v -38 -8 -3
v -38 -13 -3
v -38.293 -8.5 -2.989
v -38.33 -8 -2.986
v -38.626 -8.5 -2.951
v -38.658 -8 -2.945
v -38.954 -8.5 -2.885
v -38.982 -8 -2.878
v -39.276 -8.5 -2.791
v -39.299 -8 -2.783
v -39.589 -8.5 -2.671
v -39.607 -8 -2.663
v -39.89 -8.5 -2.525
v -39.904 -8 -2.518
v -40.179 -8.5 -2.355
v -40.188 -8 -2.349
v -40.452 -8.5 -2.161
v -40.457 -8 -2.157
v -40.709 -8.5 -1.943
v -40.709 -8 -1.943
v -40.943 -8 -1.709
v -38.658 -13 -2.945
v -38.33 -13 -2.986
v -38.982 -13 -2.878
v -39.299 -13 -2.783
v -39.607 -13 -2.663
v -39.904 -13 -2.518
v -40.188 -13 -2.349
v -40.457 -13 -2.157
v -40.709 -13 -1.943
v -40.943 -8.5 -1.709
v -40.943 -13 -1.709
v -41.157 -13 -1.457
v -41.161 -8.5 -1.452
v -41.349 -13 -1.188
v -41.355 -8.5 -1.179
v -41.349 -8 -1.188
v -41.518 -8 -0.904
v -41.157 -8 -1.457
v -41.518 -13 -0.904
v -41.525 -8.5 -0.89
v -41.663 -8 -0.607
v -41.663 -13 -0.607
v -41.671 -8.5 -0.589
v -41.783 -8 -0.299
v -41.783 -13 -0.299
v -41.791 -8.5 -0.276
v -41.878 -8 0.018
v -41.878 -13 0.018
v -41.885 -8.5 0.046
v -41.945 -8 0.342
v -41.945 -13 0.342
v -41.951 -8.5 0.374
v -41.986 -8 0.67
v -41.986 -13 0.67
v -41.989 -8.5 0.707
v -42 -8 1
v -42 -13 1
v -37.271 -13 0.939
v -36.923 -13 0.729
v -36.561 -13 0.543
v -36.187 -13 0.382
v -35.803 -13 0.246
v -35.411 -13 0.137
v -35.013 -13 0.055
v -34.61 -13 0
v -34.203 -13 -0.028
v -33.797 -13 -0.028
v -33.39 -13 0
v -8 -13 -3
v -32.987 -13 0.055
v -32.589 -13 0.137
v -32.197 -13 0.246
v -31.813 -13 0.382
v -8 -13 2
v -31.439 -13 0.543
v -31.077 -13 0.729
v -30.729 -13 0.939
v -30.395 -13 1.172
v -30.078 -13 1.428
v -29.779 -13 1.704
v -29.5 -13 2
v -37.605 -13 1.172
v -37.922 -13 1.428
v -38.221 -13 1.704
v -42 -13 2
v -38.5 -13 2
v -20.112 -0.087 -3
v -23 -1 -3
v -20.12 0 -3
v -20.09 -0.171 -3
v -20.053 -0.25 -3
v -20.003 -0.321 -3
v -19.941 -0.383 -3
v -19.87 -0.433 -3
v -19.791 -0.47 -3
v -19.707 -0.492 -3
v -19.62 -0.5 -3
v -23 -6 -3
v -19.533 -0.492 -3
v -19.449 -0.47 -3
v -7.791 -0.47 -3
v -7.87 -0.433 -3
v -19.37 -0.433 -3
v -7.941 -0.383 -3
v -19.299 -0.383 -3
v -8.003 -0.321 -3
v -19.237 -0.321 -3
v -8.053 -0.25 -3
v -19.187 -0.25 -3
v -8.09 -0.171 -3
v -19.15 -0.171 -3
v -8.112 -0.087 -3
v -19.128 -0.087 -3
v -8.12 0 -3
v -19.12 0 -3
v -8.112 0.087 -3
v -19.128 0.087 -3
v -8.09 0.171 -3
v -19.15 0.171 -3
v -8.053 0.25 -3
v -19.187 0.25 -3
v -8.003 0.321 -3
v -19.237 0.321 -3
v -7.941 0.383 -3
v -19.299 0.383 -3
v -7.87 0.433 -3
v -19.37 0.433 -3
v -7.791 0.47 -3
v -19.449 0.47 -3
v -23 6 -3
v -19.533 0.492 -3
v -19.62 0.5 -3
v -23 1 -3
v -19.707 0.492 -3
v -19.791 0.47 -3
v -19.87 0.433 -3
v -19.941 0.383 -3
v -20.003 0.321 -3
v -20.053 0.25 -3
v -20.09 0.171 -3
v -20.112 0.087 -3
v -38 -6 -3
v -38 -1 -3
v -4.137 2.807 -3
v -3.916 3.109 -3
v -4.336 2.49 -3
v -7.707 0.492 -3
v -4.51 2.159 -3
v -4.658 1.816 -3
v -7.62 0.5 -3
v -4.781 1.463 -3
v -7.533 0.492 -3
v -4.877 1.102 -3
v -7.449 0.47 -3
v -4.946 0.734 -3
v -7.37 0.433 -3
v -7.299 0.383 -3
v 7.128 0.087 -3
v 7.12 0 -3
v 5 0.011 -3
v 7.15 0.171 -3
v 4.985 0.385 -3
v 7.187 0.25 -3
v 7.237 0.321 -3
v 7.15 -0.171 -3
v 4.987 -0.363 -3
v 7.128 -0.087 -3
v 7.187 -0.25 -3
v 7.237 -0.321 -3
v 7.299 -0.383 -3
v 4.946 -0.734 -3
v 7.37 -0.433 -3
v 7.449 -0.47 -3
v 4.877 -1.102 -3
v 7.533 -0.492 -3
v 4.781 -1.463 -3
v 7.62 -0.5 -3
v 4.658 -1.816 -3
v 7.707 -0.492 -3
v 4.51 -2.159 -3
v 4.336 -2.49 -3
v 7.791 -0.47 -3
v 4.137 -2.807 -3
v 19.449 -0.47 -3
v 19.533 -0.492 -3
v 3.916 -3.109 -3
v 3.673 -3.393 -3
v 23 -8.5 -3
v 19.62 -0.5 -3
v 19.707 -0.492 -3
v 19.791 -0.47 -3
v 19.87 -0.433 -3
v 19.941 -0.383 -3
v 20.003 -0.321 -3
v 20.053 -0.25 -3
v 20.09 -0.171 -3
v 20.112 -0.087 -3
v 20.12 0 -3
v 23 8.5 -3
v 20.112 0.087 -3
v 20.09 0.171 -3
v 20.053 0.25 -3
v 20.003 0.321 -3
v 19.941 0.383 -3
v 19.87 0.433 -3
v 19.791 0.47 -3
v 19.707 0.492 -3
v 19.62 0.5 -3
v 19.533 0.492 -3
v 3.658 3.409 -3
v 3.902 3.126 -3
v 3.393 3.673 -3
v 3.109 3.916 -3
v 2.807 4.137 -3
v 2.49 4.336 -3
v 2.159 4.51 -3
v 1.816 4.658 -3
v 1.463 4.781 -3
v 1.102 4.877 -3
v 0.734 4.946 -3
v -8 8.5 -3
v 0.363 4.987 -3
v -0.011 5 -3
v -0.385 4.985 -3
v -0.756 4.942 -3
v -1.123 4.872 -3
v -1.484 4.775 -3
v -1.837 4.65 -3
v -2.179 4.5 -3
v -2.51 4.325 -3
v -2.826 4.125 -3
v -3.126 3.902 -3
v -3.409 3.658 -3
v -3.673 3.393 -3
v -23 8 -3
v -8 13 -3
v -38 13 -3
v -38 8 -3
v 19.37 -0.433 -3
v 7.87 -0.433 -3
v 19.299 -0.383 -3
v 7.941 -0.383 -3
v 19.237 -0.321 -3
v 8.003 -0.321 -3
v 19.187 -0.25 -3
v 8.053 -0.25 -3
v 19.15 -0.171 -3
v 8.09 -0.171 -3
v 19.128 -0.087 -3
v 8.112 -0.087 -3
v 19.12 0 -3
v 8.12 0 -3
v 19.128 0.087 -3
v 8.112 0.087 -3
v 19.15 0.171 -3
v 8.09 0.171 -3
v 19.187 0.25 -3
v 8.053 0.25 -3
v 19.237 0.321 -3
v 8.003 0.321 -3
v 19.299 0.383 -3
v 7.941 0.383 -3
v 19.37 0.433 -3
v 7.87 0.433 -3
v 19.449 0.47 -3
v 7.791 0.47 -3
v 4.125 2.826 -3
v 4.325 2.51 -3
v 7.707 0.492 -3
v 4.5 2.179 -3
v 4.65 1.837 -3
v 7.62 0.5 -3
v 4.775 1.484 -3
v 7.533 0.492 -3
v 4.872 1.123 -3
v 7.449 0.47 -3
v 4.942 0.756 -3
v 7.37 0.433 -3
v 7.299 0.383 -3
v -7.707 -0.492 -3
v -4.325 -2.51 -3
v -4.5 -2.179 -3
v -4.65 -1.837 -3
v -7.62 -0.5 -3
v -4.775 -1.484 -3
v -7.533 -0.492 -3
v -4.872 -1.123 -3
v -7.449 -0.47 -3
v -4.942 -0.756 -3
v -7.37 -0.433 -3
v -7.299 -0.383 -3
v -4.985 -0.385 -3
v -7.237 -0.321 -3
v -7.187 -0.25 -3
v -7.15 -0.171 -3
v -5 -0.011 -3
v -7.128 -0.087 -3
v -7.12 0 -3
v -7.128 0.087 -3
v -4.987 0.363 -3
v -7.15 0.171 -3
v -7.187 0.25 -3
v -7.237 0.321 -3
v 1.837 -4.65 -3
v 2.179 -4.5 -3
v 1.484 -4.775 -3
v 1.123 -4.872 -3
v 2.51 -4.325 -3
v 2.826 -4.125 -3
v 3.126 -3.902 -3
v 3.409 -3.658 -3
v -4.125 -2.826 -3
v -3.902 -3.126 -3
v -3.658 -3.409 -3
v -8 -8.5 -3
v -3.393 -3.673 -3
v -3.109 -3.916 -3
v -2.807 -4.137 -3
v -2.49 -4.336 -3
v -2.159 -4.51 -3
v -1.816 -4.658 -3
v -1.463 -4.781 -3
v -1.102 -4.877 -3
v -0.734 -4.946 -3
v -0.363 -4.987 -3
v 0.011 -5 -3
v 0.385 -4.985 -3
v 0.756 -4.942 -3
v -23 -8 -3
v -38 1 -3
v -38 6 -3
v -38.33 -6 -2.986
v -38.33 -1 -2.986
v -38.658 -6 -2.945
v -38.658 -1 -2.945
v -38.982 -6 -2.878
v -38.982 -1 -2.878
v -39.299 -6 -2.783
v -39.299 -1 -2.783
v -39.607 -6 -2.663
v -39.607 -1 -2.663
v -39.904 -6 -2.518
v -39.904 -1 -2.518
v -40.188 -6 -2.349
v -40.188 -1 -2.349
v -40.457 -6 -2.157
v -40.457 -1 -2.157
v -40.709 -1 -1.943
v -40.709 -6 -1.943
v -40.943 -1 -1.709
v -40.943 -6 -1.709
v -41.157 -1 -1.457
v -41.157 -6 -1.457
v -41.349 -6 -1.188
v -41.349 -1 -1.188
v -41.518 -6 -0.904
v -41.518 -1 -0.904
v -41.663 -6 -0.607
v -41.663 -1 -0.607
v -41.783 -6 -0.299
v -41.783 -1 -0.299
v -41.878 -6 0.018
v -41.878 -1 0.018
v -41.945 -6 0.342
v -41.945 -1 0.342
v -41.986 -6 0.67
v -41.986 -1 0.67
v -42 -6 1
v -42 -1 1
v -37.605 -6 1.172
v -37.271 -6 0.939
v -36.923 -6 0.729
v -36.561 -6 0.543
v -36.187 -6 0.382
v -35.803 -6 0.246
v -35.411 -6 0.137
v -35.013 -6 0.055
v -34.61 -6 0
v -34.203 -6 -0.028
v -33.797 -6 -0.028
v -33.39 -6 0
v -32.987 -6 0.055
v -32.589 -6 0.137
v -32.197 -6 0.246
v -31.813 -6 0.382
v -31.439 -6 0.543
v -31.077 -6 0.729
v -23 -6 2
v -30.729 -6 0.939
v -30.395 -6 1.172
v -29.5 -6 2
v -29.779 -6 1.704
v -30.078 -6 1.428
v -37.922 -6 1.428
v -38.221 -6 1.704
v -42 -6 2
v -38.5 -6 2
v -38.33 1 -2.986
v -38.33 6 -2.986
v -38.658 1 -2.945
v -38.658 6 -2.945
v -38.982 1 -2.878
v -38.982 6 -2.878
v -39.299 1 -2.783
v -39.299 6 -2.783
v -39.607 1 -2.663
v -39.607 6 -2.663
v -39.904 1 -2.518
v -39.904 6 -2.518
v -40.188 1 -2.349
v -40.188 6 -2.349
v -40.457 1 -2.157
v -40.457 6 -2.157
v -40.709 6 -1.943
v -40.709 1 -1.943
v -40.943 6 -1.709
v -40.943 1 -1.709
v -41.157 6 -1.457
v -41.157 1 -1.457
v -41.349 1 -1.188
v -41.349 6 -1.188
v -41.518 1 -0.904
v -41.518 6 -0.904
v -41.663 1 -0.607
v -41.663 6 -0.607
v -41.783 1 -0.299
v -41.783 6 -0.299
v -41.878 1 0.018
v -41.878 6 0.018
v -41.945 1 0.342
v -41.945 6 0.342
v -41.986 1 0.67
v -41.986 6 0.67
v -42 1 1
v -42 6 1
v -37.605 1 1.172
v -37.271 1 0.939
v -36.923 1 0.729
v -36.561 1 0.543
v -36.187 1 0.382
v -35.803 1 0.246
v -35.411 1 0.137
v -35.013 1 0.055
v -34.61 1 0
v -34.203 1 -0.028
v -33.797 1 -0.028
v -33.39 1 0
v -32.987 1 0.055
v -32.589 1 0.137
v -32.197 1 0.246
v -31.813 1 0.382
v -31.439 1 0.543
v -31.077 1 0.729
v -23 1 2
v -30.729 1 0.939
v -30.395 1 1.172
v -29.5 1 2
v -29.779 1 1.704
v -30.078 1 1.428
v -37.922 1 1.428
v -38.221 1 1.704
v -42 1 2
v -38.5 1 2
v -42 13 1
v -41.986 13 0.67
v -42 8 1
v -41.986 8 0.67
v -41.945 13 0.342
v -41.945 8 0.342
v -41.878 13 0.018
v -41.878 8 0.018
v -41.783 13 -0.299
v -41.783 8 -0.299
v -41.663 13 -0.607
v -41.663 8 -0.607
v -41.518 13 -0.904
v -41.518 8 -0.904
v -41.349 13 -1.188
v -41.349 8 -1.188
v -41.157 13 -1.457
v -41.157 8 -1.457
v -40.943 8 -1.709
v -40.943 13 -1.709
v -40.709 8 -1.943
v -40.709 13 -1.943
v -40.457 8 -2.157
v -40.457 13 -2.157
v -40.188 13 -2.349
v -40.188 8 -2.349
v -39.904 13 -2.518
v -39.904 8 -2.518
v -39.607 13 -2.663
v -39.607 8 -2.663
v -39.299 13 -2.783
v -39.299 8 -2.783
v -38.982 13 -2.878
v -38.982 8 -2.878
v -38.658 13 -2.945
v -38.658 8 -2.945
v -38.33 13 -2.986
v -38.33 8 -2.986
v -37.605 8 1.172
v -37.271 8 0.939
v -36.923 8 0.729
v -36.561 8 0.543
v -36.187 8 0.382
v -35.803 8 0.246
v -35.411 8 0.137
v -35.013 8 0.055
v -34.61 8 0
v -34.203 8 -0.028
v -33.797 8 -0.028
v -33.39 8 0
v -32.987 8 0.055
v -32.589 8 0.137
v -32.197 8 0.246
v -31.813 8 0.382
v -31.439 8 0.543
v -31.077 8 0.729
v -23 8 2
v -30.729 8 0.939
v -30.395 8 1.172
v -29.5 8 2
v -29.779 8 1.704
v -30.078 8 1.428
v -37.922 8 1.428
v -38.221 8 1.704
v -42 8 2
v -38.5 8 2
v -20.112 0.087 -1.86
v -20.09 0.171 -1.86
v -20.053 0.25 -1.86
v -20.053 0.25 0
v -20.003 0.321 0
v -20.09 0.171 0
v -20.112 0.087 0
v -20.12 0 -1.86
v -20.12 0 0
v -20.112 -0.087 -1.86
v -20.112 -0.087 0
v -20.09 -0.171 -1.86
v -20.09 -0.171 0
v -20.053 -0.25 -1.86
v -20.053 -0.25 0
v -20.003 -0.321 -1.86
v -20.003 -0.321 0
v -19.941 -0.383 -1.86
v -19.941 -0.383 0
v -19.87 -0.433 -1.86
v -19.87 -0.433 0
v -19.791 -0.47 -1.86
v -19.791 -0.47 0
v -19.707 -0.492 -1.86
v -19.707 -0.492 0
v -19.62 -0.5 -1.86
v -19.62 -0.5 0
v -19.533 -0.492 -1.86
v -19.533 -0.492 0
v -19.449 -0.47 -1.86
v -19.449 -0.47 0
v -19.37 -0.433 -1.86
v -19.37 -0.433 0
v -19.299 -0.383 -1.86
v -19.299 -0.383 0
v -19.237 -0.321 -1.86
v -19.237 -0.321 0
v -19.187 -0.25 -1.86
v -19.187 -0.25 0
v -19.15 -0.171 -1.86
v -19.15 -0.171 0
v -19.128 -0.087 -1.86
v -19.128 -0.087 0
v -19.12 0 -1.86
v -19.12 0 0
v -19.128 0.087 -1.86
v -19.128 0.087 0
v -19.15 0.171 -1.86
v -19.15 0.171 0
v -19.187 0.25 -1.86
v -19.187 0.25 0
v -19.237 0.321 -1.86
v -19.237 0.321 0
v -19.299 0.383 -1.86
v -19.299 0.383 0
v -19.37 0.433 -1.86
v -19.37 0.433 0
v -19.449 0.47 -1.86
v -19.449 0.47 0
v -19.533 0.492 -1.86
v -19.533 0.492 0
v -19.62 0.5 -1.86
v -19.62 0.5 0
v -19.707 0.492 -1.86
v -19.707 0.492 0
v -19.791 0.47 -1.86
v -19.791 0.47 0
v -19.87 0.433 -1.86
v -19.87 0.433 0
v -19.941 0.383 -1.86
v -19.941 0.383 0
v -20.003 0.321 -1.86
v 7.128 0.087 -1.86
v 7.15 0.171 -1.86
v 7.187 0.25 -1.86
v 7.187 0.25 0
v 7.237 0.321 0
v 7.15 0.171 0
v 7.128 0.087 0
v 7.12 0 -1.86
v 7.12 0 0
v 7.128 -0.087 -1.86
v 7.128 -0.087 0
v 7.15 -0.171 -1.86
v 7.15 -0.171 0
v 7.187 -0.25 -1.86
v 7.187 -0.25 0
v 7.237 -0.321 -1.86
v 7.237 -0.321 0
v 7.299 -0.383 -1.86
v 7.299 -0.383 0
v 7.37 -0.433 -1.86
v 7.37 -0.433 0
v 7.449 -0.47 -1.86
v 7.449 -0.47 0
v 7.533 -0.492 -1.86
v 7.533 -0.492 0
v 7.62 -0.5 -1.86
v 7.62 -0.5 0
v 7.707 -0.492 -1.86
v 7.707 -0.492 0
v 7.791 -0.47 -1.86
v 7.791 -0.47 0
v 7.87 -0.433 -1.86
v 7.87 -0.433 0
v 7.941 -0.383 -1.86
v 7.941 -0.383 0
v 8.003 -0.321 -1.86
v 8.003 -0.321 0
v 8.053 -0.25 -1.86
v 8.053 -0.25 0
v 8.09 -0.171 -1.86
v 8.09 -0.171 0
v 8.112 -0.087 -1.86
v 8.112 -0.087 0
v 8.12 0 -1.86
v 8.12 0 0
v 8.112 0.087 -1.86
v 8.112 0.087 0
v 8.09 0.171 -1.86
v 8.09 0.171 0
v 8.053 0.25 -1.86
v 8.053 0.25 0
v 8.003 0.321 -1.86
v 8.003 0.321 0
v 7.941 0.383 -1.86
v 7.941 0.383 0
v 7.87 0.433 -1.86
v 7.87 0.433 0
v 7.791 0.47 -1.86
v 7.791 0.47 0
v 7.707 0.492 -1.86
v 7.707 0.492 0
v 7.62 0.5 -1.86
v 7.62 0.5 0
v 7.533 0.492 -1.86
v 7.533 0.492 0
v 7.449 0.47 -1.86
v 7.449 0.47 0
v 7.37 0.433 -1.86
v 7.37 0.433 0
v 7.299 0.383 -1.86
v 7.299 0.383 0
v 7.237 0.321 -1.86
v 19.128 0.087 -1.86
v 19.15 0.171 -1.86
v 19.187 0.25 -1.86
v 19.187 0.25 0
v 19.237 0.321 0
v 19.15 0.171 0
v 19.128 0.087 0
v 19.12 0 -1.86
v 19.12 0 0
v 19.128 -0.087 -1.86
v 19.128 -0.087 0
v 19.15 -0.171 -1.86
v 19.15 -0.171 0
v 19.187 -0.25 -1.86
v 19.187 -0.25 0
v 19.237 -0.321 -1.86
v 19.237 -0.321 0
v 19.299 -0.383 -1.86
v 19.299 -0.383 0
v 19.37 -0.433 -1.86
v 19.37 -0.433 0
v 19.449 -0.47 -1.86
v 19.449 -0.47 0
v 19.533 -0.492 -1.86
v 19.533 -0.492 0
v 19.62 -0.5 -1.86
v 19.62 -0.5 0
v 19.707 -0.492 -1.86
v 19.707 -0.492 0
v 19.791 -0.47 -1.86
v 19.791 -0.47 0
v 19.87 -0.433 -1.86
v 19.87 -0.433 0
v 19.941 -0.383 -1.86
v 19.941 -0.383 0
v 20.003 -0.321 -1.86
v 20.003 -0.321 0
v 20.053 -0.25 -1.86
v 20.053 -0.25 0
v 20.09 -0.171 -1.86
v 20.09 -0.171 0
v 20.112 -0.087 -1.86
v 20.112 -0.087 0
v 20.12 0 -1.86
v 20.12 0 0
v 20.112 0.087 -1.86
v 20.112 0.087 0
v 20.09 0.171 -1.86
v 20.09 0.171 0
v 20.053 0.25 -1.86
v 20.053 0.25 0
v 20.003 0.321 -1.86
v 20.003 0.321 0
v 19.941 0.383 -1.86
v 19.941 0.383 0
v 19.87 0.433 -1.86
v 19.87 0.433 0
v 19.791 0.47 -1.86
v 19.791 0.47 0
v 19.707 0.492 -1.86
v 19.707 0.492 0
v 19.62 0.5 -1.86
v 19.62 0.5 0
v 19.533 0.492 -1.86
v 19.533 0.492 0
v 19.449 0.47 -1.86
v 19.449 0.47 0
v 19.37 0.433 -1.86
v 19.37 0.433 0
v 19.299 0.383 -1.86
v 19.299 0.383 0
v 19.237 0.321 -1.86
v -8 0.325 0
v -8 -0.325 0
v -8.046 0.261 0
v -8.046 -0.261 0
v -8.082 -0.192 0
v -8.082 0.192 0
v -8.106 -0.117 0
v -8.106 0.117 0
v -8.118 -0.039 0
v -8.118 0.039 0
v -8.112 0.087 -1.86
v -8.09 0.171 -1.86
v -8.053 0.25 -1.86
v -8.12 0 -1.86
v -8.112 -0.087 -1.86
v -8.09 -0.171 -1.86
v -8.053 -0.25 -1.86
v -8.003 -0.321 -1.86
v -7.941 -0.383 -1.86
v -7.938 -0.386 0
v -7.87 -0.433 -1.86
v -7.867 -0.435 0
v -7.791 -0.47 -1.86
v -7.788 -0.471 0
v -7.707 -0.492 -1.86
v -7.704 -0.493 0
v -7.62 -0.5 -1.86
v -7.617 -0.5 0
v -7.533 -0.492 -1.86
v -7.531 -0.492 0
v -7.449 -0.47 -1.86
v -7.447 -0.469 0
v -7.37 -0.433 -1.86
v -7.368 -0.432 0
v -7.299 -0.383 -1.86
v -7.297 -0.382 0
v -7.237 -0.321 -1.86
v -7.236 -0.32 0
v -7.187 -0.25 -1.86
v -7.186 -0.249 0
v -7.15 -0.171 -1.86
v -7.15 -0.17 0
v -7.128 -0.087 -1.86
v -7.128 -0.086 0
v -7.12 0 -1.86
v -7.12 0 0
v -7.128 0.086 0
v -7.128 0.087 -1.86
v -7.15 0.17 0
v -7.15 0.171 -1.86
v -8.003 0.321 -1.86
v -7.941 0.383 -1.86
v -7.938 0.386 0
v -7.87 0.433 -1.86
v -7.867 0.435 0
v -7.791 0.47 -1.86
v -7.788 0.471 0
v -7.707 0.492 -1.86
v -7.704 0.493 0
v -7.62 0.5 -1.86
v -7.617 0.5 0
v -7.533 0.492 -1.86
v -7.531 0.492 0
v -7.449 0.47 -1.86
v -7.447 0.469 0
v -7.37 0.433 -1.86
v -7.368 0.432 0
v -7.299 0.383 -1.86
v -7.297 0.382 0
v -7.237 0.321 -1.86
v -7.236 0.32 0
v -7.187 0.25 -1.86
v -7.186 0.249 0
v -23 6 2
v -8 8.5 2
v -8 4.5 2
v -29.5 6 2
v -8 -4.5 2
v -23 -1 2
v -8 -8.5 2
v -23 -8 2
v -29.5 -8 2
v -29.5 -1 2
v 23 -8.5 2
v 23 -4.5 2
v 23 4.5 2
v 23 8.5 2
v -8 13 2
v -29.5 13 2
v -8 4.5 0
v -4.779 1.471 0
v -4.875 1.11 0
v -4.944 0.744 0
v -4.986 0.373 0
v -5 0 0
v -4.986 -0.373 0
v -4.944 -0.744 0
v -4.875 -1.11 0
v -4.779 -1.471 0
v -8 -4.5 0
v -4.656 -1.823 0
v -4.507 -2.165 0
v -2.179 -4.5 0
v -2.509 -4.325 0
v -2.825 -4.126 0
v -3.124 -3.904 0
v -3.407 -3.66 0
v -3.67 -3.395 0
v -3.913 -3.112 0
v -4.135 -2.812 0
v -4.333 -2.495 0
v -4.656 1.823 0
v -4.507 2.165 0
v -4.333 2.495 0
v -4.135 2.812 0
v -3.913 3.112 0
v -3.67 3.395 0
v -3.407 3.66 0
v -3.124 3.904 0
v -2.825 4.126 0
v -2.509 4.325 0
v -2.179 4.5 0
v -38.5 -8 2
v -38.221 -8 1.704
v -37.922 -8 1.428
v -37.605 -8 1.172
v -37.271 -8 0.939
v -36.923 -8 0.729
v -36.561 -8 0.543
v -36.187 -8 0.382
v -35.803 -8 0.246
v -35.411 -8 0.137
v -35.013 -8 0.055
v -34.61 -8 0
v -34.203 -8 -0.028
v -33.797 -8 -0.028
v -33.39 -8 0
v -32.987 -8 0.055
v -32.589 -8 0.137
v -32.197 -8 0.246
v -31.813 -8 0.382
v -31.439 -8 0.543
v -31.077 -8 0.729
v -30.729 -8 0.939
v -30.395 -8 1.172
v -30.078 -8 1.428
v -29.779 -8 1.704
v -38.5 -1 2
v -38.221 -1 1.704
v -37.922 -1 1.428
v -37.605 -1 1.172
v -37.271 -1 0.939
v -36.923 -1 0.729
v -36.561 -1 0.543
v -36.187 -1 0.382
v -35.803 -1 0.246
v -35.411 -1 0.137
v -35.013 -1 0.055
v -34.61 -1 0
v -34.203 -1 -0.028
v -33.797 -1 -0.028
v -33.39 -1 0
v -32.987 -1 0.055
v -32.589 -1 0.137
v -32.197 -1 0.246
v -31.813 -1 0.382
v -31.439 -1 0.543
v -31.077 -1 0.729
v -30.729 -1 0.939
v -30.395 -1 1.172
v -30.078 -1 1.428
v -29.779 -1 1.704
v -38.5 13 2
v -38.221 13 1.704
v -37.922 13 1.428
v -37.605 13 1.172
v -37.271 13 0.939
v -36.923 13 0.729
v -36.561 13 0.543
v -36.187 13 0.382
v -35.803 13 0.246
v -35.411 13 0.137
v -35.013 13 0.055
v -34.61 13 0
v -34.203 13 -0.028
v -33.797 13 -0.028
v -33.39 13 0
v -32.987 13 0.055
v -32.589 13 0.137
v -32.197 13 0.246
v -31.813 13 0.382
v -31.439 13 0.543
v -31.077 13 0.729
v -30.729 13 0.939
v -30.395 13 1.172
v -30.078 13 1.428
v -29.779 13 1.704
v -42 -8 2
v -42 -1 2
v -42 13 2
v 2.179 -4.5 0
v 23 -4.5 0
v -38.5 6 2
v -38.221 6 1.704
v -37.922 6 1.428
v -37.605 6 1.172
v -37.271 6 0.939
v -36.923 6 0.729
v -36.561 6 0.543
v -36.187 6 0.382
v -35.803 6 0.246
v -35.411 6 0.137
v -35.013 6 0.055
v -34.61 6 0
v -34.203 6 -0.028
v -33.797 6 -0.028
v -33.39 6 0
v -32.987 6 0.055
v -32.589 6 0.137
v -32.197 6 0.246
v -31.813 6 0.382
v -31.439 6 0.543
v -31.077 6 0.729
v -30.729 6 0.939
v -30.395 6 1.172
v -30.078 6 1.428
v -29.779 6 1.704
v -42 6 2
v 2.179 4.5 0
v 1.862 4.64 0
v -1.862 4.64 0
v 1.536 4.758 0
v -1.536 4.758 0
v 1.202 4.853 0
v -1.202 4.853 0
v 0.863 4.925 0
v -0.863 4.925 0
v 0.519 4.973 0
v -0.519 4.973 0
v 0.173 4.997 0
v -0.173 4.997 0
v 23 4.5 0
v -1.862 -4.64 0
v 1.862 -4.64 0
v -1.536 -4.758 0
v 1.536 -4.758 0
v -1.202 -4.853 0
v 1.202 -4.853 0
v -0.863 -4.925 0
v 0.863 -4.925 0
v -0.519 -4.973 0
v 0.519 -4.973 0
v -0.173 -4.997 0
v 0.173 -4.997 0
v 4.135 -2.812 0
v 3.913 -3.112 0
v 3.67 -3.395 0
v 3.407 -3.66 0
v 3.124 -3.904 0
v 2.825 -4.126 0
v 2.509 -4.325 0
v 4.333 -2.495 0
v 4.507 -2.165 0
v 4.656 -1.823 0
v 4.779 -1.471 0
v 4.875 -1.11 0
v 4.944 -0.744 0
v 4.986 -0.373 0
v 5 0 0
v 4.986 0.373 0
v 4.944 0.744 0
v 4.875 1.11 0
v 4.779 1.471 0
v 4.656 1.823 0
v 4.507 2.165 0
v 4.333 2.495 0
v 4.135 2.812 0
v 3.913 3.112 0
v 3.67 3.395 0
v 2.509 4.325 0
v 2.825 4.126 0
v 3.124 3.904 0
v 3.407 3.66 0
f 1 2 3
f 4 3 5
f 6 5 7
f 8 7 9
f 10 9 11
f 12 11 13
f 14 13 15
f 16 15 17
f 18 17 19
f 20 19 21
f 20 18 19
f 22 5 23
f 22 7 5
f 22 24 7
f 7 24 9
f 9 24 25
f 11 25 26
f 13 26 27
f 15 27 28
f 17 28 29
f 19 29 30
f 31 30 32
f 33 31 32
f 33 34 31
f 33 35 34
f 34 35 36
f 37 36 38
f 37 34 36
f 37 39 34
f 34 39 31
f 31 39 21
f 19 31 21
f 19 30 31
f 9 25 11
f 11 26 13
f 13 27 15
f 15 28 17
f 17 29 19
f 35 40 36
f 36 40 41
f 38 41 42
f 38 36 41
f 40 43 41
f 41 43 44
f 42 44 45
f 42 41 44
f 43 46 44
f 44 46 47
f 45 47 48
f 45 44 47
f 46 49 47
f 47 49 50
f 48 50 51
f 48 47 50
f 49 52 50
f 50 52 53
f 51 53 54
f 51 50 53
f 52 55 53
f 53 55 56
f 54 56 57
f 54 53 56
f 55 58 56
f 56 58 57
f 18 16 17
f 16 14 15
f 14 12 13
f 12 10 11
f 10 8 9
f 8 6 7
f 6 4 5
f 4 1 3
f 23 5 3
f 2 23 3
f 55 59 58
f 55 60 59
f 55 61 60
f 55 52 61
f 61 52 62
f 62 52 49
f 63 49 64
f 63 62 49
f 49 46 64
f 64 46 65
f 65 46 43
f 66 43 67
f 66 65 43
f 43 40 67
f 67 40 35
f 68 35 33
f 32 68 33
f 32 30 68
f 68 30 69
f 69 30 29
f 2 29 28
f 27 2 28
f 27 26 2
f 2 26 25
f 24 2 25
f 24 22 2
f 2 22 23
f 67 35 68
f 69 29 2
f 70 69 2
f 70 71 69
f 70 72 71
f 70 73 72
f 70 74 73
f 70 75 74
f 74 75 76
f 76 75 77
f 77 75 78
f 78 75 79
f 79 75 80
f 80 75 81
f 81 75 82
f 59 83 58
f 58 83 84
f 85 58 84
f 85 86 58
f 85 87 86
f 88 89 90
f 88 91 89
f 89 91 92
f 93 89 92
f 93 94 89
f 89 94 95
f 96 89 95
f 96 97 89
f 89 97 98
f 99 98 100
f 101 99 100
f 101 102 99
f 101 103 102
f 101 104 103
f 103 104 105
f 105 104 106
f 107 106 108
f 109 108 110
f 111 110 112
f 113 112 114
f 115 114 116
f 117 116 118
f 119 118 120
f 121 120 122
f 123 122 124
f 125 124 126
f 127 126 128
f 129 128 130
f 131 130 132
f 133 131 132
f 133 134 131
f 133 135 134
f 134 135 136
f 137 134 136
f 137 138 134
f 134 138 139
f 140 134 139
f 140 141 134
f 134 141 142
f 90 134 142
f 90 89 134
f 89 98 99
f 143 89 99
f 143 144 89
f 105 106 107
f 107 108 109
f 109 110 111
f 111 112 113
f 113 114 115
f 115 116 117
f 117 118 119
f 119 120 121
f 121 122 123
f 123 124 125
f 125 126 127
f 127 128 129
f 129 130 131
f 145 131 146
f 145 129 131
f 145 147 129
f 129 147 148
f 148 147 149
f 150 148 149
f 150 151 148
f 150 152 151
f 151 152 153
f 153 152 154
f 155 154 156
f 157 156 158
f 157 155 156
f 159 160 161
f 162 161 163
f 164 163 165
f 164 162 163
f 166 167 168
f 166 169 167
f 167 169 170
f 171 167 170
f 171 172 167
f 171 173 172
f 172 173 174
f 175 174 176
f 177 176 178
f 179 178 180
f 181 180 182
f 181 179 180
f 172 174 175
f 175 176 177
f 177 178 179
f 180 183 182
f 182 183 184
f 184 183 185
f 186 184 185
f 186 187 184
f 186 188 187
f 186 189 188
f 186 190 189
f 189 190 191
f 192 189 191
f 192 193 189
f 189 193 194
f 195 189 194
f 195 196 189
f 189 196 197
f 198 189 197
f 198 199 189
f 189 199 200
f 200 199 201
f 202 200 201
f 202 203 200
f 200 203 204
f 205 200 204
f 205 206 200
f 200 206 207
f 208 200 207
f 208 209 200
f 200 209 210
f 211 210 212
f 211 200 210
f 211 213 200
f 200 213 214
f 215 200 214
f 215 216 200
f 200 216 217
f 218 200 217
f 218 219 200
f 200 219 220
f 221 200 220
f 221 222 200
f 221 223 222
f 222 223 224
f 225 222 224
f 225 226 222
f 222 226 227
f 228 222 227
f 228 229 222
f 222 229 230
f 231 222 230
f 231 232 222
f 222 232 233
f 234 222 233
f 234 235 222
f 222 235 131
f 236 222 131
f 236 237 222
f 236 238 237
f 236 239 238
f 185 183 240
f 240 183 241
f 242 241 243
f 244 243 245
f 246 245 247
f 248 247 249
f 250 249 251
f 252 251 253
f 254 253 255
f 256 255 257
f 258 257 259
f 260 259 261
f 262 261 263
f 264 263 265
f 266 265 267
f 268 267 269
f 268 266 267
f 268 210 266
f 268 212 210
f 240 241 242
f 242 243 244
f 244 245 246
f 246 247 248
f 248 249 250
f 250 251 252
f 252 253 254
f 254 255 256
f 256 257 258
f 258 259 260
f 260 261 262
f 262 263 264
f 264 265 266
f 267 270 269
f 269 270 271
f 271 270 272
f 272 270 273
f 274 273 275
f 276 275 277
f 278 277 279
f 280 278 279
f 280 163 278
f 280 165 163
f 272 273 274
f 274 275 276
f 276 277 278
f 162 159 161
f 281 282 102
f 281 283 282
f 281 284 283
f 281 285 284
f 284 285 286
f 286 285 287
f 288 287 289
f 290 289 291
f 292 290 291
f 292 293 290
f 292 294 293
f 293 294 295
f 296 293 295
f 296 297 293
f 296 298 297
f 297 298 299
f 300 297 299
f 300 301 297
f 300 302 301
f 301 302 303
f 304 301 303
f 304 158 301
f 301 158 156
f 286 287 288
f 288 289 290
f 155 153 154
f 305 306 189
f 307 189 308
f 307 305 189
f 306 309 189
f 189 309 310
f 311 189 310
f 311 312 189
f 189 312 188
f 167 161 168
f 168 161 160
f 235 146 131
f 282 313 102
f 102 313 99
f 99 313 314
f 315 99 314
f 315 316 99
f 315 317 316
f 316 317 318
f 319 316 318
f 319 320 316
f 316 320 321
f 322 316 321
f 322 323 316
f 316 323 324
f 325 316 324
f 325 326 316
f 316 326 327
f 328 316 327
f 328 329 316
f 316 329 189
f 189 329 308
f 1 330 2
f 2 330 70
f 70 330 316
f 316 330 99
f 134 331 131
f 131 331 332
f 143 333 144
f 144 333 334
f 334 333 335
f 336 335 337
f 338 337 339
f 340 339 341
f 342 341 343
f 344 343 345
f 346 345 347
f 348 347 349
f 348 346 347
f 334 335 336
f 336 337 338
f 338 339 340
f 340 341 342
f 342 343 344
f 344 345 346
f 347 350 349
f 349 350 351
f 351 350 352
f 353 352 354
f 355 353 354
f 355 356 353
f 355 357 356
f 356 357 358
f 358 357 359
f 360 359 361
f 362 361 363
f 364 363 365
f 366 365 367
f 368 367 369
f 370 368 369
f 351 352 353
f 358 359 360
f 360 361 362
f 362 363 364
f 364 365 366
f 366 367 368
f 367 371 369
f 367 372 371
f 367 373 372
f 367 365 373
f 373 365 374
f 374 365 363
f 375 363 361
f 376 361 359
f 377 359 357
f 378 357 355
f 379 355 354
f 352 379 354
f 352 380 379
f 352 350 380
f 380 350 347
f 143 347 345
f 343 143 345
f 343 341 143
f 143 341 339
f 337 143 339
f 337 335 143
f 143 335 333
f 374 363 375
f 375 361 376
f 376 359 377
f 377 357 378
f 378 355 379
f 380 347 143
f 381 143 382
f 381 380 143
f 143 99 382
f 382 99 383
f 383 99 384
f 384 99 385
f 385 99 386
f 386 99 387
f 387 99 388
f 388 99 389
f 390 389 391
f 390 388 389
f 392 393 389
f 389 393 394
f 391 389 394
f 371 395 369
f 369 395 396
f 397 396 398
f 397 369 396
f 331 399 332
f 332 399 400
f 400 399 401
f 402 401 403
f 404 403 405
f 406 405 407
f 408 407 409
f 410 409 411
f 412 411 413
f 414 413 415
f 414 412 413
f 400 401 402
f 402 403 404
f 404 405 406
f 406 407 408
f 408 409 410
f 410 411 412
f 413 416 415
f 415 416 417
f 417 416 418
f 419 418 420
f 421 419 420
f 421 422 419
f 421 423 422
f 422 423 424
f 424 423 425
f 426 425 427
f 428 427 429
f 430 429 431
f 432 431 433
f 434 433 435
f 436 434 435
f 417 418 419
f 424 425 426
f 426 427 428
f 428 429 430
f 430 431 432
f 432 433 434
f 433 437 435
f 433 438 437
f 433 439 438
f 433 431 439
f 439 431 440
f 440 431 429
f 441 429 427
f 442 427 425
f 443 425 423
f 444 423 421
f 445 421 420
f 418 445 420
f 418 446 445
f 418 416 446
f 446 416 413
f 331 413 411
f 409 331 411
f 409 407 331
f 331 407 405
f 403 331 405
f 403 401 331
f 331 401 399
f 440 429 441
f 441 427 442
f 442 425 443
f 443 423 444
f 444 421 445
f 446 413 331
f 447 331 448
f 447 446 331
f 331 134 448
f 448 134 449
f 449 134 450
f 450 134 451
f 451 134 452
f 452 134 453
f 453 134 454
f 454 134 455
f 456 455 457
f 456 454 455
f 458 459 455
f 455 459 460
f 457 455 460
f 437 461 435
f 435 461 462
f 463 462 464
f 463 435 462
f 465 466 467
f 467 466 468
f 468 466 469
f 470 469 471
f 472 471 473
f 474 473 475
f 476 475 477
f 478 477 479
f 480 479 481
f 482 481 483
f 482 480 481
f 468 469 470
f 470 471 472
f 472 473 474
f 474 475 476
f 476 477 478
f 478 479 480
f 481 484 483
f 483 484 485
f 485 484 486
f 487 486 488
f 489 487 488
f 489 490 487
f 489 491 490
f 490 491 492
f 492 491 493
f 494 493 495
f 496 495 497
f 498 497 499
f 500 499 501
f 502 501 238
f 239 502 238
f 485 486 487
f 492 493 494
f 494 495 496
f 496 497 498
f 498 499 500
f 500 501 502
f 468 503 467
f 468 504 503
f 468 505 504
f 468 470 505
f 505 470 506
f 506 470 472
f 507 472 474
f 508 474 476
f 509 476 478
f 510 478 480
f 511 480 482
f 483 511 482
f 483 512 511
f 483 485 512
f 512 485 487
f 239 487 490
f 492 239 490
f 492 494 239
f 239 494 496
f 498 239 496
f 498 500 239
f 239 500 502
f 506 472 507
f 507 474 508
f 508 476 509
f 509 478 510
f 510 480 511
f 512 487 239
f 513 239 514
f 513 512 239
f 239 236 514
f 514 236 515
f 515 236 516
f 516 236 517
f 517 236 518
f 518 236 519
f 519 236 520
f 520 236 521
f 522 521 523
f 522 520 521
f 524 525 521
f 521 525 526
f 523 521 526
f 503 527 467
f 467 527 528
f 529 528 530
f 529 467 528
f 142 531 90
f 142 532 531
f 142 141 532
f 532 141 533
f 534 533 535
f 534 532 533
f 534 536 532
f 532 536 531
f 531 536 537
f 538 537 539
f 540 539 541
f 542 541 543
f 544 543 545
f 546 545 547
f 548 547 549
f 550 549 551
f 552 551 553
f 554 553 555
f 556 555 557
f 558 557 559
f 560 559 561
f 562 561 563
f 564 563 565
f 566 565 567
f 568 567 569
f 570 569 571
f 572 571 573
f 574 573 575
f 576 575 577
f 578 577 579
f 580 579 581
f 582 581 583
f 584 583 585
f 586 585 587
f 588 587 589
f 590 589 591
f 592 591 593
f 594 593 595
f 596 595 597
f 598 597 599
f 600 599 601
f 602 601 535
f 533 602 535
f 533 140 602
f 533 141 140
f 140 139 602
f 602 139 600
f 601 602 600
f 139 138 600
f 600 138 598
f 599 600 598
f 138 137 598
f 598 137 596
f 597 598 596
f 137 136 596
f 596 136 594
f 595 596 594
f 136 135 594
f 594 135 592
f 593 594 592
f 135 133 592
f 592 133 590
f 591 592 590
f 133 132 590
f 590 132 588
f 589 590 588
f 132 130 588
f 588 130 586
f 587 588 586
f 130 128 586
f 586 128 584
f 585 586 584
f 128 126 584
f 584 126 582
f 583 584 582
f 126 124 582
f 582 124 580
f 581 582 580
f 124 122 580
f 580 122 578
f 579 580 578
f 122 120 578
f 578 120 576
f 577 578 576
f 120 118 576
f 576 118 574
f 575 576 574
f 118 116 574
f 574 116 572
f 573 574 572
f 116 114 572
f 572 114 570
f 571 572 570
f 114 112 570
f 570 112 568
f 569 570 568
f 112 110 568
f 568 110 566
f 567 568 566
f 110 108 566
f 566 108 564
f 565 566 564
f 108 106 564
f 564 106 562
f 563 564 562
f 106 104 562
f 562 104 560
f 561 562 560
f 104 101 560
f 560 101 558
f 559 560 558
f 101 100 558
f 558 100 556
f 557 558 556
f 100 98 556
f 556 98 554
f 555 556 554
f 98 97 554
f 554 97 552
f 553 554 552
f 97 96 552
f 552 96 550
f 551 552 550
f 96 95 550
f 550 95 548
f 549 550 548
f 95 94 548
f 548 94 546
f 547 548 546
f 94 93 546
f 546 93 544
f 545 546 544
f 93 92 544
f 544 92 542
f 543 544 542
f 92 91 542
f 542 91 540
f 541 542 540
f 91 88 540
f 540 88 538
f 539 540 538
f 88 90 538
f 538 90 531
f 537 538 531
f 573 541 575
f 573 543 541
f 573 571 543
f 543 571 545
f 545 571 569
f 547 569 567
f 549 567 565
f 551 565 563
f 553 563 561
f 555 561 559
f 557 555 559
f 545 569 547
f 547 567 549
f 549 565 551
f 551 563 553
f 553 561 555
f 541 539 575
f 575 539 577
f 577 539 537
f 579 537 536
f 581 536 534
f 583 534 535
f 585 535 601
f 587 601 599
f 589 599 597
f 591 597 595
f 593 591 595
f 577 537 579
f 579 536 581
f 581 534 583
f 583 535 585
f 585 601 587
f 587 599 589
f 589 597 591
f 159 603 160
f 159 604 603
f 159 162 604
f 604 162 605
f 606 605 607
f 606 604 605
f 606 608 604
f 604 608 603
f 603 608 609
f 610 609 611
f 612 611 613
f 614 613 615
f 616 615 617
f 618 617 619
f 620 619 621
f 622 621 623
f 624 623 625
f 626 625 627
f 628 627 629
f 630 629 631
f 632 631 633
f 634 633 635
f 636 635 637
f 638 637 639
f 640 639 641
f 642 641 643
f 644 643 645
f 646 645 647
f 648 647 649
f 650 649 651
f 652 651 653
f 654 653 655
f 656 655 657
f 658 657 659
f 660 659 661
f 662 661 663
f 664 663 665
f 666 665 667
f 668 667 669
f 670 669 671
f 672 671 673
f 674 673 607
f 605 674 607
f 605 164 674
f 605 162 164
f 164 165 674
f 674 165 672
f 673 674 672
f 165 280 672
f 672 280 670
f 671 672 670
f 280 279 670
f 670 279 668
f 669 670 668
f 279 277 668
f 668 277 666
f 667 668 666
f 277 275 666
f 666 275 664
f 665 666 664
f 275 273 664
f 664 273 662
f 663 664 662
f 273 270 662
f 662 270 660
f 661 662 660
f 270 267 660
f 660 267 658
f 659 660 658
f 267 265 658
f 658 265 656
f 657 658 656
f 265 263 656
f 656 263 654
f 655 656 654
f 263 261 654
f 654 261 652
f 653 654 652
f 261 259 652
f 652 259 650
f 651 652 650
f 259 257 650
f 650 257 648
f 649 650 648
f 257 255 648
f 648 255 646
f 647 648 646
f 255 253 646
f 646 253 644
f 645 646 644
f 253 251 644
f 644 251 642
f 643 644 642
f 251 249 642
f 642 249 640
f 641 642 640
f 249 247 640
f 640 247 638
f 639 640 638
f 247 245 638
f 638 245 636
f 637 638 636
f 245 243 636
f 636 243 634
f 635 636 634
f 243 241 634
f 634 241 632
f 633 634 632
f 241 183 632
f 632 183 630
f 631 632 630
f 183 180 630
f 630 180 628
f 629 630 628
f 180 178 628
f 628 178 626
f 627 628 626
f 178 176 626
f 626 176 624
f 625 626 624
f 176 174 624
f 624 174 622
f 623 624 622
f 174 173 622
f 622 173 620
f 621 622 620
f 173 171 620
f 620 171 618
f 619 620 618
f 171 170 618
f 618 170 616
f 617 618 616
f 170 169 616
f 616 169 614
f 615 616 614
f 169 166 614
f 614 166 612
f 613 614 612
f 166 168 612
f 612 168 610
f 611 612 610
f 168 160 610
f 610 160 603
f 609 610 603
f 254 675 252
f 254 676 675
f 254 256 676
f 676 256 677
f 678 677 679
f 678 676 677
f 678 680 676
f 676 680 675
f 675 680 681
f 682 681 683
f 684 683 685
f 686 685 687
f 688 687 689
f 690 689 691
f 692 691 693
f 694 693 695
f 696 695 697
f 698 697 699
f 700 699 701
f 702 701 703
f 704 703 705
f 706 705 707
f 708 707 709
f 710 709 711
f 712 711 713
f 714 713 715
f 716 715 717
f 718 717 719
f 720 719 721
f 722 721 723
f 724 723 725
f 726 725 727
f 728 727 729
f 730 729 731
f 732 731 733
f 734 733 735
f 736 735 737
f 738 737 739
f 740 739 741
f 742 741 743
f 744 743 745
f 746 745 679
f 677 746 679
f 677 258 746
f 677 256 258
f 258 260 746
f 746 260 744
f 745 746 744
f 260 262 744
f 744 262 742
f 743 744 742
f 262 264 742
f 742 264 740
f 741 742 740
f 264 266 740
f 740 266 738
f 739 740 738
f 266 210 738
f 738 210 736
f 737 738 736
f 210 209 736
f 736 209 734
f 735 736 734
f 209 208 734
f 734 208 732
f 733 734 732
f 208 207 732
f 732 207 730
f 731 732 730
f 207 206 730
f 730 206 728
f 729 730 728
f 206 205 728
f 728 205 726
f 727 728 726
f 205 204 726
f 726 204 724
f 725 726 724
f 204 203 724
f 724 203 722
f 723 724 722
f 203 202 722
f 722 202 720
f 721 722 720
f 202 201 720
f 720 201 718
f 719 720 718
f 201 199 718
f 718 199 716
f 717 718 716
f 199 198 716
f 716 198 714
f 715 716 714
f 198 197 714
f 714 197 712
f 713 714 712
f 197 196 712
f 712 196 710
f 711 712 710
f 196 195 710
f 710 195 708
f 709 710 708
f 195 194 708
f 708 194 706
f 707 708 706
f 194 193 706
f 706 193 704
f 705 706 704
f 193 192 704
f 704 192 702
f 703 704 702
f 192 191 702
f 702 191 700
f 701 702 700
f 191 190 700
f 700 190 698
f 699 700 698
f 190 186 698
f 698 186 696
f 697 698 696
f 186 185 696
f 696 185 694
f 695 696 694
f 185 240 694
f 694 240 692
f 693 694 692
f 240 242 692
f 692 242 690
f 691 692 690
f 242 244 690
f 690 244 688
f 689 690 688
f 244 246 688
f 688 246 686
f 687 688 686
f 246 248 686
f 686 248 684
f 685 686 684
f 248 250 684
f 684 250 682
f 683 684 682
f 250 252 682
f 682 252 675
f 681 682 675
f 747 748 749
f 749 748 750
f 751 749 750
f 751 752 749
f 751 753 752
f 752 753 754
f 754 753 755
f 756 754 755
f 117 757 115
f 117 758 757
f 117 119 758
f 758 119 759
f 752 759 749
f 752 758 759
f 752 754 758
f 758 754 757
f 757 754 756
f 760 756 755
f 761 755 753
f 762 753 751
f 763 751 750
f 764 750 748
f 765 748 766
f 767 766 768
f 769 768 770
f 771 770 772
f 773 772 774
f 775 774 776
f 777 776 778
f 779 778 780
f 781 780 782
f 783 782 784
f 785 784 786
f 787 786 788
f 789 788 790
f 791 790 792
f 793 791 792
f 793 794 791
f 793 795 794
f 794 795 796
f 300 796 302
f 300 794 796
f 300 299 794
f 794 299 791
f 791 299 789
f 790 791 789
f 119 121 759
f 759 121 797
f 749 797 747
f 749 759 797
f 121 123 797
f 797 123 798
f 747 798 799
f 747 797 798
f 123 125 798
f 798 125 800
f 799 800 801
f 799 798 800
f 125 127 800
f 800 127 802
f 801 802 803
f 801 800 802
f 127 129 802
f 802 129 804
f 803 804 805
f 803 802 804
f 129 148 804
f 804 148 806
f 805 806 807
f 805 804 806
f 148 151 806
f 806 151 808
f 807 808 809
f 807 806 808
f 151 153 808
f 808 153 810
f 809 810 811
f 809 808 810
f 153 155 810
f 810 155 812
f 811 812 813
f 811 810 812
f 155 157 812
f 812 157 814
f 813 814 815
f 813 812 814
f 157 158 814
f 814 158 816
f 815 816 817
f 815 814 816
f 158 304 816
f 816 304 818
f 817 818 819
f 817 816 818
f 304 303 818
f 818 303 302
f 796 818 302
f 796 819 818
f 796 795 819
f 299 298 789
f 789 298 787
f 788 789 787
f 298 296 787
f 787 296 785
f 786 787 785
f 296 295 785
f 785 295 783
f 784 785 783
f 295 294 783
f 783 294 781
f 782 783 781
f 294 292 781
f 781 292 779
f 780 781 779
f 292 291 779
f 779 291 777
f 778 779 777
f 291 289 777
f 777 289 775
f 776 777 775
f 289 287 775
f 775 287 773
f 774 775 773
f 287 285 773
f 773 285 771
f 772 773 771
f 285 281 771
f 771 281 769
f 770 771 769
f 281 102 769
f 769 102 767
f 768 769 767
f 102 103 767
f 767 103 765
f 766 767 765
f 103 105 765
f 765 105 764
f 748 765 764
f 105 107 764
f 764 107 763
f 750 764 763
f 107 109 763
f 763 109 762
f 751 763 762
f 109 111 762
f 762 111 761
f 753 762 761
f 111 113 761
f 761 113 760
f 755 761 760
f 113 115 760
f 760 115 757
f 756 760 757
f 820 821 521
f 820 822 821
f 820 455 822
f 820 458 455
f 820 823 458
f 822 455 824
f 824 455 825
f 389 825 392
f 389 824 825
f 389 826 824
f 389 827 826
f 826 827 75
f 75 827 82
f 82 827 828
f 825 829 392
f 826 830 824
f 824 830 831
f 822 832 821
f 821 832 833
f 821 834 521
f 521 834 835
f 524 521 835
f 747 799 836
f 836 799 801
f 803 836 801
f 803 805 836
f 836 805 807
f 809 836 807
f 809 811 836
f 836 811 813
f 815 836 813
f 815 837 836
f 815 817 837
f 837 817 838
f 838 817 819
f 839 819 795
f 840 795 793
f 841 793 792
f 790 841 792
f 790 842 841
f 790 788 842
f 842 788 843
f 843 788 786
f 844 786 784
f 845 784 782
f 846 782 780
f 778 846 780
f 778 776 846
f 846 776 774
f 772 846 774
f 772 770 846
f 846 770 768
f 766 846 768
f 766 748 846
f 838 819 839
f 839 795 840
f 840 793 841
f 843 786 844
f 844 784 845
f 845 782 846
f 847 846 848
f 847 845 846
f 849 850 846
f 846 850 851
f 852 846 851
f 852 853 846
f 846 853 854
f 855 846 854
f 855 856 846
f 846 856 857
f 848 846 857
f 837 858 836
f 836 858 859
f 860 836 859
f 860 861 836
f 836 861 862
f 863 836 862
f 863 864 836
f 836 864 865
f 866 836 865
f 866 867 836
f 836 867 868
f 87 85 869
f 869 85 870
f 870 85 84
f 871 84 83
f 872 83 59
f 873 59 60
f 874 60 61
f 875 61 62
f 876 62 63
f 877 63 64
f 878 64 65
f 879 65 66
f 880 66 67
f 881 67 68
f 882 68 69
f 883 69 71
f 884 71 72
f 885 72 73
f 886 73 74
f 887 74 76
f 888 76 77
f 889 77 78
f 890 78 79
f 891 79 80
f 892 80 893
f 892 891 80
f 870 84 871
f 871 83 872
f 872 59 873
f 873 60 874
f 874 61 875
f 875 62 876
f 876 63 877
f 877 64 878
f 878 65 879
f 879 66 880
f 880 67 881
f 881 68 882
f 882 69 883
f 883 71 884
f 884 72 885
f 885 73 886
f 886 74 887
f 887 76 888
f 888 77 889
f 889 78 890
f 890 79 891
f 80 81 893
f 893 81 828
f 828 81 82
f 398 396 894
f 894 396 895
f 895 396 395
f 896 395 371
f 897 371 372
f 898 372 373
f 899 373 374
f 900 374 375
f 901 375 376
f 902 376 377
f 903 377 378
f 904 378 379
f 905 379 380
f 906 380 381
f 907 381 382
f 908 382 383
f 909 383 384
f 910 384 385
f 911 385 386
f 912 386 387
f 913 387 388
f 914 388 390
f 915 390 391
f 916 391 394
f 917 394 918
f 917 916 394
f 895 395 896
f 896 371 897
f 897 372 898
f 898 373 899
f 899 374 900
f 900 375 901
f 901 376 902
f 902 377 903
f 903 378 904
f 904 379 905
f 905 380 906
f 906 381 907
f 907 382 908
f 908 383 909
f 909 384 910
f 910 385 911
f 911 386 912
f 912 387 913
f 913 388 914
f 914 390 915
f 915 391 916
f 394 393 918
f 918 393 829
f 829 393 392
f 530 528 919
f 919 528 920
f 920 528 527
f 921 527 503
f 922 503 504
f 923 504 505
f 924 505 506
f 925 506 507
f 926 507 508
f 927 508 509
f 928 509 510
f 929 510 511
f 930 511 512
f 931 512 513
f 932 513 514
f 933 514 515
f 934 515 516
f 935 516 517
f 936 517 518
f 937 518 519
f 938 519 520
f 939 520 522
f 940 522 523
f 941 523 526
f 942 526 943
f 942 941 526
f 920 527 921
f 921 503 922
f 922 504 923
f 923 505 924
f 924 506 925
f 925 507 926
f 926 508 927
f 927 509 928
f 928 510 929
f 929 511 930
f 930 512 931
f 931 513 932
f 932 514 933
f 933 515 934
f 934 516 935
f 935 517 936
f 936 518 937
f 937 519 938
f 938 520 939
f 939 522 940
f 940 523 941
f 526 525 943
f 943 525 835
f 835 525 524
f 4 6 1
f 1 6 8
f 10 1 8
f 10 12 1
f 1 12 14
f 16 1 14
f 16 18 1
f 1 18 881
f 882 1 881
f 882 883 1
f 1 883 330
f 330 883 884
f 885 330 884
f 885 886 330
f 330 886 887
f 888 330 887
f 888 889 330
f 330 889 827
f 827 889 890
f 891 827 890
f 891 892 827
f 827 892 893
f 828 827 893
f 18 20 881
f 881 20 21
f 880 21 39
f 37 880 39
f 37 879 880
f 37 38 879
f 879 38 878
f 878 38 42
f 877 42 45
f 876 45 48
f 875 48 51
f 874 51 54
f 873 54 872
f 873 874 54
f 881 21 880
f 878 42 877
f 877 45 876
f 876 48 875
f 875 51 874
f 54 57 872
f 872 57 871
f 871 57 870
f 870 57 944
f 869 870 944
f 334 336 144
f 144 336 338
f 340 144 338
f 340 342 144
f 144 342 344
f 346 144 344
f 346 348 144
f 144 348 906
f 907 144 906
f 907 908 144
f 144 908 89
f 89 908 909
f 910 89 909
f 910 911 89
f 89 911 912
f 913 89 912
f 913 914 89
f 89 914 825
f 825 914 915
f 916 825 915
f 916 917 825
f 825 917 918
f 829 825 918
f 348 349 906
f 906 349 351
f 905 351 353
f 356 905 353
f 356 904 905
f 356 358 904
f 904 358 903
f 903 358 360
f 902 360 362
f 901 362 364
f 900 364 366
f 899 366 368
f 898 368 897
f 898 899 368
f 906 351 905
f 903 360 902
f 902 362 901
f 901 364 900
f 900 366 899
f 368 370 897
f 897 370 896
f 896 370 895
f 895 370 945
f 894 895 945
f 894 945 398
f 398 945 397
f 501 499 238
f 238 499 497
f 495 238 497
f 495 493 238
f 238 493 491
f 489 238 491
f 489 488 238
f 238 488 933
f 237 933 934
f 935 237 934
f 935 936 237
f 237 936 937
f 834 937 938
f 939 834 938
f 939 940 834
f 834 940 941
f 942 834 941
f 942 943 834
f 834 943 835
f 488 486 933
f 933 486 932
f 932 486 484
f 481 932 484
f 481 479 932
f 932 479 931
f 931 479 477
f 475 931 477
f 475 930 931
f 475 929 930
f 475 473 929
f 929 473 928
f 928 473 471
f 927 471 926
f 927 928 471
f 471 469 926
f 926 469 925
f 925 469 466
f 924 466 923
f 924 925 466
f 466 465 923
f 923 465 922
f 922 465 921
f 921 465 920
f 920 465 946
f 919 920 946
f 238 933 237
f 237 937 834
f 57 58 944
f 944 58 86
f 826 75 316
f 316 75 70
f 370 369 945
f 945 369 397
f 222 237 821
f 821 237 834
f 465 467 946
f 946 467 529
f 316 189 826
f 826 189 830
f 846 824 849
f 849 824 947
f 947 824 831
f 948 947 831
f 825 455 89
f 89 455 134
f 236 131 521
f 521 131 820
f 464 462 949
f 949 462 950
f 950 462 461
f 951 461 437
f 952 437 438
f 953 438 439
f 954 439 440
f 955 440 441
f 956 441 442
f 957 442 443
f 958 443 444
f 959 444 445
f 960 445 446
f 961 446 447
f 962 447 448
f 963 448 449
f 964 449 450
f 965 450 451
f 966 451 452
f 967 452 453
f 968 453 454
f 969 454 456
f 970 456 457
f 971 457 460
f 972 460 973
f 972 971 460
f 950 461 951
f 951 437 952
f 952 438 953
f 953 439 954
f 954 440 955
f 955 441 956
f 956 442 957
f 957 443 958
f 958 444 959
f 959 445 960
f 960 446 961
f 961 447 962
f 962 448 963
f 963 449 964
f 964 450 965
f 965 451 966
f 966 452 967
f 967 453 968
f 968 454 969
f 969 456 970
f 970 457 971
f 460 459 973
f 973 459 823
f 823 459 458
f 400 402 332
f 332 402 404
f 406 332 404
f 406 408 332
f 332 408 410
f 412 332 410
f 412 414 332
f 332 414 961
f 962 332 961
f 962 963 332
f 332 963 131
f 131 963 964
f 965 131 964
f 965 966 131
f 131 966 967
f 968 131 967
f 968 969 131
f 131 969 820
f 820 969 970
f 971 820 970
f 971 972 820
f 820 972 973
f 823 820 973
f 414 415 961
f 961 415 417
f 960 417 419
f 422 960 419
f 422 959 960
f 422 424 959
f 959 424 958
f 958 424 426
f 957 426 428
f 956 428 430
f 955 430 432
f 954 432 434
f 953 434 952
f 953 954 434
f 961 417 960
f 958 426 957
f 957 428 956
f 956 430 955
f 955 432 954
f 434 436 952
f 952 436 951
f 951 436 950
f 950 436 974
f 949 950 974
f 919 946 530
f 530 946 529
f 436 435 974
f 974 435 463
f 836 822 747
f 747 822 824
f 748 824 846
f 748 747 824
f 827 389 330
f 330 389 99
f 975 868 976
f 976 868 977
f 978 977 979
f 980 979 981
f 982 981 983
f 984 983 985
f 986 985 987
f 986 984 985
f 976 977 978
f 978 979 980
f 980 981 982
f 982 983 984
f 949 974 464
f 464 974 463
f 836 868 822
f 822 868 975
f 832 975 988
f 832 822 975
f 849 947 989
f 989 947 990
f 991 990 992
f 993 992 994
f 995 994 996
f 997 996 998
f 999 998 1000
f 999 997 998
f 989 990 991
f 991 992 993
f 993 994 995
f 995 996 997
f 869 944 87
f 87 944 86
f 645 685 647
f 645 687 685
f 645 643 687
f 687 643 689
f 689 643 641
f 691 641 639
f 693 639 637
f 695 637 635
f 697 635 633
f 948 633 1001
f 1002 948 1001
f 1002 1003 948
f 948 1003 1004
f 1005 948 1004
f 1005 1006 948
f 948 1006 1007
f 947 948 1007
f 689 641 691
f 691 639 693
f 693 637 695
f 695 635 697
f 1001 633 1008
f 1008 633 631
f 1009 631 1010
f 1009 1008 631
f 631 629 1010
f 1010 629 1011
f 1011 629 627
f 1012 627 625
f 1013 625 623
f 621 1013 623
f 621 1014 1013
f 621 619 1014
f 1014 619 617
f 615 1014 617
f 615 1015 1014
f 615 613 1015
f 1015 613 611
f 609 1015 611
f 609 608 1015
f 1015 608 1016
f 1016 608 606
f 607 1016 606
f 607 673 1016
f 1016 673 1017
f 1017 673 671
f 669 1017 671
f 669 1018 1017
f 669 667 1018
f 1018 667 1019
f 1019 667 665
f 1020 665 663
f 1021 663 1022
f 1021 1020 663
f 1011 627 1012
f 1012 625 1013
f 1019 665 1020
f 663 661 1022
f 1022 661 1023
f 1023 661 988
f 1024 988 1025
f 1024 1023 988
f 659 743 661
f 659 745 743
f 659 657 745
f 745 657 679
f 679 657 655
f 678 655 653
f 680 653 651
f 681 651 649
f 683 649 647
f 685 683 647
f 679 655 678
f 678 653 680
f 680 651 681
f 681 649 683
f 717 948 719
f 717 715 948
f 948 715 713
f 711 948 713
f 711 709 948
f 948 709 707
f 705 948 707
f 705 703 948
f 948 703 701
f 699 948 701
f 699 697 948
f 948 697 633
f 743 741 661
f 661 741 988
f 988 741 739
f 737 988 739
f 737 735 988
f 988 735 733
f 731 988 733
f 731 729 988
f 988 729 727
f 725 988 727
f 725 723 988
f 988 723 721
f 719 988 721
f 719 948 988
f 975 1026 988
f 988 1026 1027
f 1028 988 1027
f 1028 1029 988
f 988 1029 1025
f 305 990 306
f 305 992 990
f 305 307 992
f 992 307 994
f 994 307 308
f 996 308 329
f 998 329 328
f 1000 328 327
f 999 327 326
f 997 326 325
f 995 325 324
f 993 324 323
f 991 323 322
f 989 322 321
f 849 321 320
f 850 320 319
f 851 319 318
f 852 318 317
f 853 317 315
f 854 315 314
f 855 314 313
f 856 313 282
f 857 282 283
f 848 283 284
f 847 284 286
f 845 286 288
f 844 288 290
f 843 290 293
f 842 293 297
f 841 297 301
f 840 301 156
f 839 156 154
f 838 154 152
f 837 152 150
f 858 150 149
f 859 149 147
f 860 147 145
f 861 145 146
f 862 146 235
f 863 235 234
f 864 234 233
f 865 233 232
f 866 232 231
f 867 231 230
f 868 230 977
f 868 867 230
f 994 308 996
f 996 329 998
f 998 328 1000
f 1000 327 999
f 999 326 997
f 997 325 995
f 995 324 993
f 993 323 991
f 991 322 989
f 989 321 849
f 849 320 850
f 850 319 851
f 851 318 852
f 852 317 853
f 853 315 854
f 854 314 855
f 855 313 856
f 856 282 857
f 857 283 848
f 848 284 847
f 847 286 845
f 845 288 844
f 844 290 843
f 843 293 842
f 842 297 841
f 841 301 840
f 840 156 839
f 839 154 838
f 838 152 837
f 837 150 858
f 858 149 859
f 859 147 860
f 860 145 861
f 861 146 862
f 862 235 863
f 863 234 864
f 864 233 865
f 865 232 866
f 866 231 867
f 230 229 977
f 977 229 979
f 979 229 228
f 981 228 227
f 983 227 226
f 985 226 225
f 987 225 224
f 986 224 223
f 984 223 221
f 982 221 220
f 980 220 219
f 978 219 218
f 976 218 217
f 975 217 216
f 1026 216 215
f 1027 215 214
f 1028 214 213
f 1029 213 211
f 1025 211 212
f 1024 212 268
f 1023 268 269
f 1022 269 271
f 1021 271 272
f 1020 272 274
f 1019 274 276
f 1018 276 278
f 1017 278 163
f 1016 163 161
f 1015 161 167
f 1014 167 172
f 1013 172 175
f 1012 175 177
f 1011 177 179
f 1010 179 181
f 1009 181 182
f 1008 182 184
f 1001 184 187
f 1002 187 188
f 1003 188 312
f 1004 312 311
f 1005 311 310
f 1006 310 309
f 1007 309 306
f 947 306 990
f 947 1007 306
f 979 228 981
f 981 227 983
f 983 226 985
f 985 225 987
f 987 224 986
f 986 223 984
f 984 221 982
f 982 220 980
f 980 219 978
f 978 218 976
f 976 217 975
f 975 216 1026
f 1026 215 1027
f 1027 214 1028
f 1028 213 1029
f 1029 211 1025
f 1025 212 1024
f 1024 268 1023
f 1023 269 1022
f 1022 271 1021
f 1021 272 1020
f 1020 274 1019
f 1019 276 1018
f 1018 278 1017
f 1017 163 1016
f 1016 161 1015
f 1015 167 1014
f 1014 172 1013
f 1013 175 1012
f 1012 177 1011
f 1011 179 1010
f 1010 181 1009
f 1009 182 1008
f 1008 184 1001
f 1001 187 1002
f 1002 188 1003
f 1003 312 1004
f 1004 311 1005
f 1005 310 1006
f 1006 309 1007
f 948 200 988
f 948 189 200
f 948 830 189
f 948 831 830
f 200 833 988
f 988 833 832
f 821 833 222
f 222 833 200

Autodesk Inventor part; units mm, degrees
ref_plane "YZ Plane" through (0, 0, 0) normal (1, 0, 0) x (0, 1, 0)
ref_plane "XZ Plane" through (0, 0, 0) normal (0, 1, 0) x (-1, 0, 0)
ref_plane "XY Plane" through (0, 0, 0) normal (0, 0, 1) x (1, 0, 0)
sketch "Sketch1" plane through (0, 0, 0) normal (0, 0, 1) x (1, 0, 0)
  arc A0 (2.1794, -4.5) -> (2.1794, 4.5) centre (0, 0) ccw
  line L0 (-23, -4.5) -> (-2.1794, -4.5)
  line L1 (23, -4.5) -> (23, 4.5)
  line L2 (23, 4.5) -> (2.1794, 4.5)
  line L3 (-23, 4.5) -> (-23, -4.5)
  line L4 (-23, -4.5) -> (23, 4.5) construction
  line L5 (23, -4.5) -> (-23, 4.5) construction
  line L6 (0, 0) -> (23, 0) construction
  line L7 (0, 0) -> (0, 4.5) construction
  line L8 (23, -8.5) -> (-23, -8.5)
  line L9 (-23, -8.5) -> (-23, 8.5)
  line L10 (-23, 8.5) -> (23, 8.5)
  line L11 (23, 8.5) -> (23, -8.5)
  line L12 (23, -8.5) -> (-23, 8.5) construction
  line L13 (-23, -8.5) -> (23, 8.5) construction
  line L14 (-2.1794, 4.5) -> (-23, 4.5)
  line L15 (2.1794, 4.5) -> (-2.1794, 4.5)
  line L16 (-2.1794, -4.5) -> (2.1794, -4.5)
  line L17 (2.1794, -4.5) -> (23, -4.5)
  arc A1 (-2.1794, -4.5) -> (2.1794, -4.5) centre (0, 0) ccw
  arc A2 (2.1794, 4.5) -> (-2.1794, 4.5) centre (0, 0) ccw
  arc A3 (-2.1794, 4.5) -> (-2.1794, -4.5) centre (0, 0) ccw
  point P0 (7.62, 0)
  point P1 (19.62, 0)
  point P2 (-7.62, 0)
  point P3 (-19.62, 0)
  point P4 (20, 0)
  dimension "d0" = 10
  dimension "d1" = 46
  dimension "d2" = 9
  dimension "d3" = 7.62
  dimension "d4" = 12
  dimension "d5" = 4
extrude "Extrusion1" add sketch "Sketch1" against normal blind 3 contours A0 L2 L1 L17 | L17 L11 L8 L9 L0 A1 | A2 L14 L9 L10 L11 L2 | L0 L3 L14 A3
extrude "Extrusion2" add sketch "Sketch1" along normal blind 2 contours A1 L16 | L17 L11 L8 L9 L0 A1 | A2 L14 L9 L10 L11 L2 | L15 A2
sketch "Sketch2" plane through (0, 0, -3) normal (0, 0, -1) x (-1, 0, 0)
  circle A0 centre (0, 0) radius 5 projected
  line L0 (8, 6) -> (42, 6)
  line L1 (42, 6) -> (42, 1)
  line L2 (42, 1) -> (8, 1)
  line L3 (8, 1) -> (8, 6)
  line L4 (-23, -8.5) -> (23, -8.5) projected
  line L5 (23, 8.5) -> (-23, 8.5) projected
  line L6 (-23, 8.5) -> (-23, -8.5) projected
  line L7 (8, 8.5) -> (8, -8.5)
  line L8 (23, -8.5) -> (23, 8.5) projected
  line L9 (8, -8.5) -> (23, -8.5)
  line L10 (23, 8.5) -> (23, -8.5)
  line L11 (23, 8.5) -> (8, 8.5)
  dimension "d12" = 8
  dimension "d13" = 34
  dimension "d14" = 5
  dimension "d15" = 1
extrude "Extrusion3" add sketch "Sketch2" against normal up to surface (5 mm away) contours L0 L8 L2 L3 | L0 L1 L2 L8
sketch "Sketch3" plane through (-42, 6, -3) normal (0, 1, 0) x (1, 0, 0)
  line L0 (0, -5) -> (19, -5) projected
  arc A0 (12.5, -5) -> (3.5, -5) centre (8, -8.9686) ccw
  point P0 (42, -3)
  dimension "d33" = 6
  dimension "d35" = 3.5
  dimension "d36" = 9
extrude "Extrusion4" cut sketch "Sketch3" against normal up to next
pattern_linear "Rectangular Pattern1" count 4 spacing 7 along (0, -1, 0) of "Extrusion3", "Extrusion4" first direction both ways yes
extrude "Extrusion5" add sketch "Sketch2" against normal up to surface (5 mm away) contours L7 L5 L8 L0 | L0 L8 L2 L3 | L2 L8 L4 L7
hole "Hole1" at (7.62, 0, 0) at (19.62, 0, 0) at (-19.62, 0, 0) at (-7.62, 0, 0) direction (0, 0, -1) diameter 1 end through all
fillet "Fillet1" radius 4 3 edges at (-42, -10.5, -3) (-42, 3.5, -3) (-42, -3.5, -3)
properties part number "hand1"
